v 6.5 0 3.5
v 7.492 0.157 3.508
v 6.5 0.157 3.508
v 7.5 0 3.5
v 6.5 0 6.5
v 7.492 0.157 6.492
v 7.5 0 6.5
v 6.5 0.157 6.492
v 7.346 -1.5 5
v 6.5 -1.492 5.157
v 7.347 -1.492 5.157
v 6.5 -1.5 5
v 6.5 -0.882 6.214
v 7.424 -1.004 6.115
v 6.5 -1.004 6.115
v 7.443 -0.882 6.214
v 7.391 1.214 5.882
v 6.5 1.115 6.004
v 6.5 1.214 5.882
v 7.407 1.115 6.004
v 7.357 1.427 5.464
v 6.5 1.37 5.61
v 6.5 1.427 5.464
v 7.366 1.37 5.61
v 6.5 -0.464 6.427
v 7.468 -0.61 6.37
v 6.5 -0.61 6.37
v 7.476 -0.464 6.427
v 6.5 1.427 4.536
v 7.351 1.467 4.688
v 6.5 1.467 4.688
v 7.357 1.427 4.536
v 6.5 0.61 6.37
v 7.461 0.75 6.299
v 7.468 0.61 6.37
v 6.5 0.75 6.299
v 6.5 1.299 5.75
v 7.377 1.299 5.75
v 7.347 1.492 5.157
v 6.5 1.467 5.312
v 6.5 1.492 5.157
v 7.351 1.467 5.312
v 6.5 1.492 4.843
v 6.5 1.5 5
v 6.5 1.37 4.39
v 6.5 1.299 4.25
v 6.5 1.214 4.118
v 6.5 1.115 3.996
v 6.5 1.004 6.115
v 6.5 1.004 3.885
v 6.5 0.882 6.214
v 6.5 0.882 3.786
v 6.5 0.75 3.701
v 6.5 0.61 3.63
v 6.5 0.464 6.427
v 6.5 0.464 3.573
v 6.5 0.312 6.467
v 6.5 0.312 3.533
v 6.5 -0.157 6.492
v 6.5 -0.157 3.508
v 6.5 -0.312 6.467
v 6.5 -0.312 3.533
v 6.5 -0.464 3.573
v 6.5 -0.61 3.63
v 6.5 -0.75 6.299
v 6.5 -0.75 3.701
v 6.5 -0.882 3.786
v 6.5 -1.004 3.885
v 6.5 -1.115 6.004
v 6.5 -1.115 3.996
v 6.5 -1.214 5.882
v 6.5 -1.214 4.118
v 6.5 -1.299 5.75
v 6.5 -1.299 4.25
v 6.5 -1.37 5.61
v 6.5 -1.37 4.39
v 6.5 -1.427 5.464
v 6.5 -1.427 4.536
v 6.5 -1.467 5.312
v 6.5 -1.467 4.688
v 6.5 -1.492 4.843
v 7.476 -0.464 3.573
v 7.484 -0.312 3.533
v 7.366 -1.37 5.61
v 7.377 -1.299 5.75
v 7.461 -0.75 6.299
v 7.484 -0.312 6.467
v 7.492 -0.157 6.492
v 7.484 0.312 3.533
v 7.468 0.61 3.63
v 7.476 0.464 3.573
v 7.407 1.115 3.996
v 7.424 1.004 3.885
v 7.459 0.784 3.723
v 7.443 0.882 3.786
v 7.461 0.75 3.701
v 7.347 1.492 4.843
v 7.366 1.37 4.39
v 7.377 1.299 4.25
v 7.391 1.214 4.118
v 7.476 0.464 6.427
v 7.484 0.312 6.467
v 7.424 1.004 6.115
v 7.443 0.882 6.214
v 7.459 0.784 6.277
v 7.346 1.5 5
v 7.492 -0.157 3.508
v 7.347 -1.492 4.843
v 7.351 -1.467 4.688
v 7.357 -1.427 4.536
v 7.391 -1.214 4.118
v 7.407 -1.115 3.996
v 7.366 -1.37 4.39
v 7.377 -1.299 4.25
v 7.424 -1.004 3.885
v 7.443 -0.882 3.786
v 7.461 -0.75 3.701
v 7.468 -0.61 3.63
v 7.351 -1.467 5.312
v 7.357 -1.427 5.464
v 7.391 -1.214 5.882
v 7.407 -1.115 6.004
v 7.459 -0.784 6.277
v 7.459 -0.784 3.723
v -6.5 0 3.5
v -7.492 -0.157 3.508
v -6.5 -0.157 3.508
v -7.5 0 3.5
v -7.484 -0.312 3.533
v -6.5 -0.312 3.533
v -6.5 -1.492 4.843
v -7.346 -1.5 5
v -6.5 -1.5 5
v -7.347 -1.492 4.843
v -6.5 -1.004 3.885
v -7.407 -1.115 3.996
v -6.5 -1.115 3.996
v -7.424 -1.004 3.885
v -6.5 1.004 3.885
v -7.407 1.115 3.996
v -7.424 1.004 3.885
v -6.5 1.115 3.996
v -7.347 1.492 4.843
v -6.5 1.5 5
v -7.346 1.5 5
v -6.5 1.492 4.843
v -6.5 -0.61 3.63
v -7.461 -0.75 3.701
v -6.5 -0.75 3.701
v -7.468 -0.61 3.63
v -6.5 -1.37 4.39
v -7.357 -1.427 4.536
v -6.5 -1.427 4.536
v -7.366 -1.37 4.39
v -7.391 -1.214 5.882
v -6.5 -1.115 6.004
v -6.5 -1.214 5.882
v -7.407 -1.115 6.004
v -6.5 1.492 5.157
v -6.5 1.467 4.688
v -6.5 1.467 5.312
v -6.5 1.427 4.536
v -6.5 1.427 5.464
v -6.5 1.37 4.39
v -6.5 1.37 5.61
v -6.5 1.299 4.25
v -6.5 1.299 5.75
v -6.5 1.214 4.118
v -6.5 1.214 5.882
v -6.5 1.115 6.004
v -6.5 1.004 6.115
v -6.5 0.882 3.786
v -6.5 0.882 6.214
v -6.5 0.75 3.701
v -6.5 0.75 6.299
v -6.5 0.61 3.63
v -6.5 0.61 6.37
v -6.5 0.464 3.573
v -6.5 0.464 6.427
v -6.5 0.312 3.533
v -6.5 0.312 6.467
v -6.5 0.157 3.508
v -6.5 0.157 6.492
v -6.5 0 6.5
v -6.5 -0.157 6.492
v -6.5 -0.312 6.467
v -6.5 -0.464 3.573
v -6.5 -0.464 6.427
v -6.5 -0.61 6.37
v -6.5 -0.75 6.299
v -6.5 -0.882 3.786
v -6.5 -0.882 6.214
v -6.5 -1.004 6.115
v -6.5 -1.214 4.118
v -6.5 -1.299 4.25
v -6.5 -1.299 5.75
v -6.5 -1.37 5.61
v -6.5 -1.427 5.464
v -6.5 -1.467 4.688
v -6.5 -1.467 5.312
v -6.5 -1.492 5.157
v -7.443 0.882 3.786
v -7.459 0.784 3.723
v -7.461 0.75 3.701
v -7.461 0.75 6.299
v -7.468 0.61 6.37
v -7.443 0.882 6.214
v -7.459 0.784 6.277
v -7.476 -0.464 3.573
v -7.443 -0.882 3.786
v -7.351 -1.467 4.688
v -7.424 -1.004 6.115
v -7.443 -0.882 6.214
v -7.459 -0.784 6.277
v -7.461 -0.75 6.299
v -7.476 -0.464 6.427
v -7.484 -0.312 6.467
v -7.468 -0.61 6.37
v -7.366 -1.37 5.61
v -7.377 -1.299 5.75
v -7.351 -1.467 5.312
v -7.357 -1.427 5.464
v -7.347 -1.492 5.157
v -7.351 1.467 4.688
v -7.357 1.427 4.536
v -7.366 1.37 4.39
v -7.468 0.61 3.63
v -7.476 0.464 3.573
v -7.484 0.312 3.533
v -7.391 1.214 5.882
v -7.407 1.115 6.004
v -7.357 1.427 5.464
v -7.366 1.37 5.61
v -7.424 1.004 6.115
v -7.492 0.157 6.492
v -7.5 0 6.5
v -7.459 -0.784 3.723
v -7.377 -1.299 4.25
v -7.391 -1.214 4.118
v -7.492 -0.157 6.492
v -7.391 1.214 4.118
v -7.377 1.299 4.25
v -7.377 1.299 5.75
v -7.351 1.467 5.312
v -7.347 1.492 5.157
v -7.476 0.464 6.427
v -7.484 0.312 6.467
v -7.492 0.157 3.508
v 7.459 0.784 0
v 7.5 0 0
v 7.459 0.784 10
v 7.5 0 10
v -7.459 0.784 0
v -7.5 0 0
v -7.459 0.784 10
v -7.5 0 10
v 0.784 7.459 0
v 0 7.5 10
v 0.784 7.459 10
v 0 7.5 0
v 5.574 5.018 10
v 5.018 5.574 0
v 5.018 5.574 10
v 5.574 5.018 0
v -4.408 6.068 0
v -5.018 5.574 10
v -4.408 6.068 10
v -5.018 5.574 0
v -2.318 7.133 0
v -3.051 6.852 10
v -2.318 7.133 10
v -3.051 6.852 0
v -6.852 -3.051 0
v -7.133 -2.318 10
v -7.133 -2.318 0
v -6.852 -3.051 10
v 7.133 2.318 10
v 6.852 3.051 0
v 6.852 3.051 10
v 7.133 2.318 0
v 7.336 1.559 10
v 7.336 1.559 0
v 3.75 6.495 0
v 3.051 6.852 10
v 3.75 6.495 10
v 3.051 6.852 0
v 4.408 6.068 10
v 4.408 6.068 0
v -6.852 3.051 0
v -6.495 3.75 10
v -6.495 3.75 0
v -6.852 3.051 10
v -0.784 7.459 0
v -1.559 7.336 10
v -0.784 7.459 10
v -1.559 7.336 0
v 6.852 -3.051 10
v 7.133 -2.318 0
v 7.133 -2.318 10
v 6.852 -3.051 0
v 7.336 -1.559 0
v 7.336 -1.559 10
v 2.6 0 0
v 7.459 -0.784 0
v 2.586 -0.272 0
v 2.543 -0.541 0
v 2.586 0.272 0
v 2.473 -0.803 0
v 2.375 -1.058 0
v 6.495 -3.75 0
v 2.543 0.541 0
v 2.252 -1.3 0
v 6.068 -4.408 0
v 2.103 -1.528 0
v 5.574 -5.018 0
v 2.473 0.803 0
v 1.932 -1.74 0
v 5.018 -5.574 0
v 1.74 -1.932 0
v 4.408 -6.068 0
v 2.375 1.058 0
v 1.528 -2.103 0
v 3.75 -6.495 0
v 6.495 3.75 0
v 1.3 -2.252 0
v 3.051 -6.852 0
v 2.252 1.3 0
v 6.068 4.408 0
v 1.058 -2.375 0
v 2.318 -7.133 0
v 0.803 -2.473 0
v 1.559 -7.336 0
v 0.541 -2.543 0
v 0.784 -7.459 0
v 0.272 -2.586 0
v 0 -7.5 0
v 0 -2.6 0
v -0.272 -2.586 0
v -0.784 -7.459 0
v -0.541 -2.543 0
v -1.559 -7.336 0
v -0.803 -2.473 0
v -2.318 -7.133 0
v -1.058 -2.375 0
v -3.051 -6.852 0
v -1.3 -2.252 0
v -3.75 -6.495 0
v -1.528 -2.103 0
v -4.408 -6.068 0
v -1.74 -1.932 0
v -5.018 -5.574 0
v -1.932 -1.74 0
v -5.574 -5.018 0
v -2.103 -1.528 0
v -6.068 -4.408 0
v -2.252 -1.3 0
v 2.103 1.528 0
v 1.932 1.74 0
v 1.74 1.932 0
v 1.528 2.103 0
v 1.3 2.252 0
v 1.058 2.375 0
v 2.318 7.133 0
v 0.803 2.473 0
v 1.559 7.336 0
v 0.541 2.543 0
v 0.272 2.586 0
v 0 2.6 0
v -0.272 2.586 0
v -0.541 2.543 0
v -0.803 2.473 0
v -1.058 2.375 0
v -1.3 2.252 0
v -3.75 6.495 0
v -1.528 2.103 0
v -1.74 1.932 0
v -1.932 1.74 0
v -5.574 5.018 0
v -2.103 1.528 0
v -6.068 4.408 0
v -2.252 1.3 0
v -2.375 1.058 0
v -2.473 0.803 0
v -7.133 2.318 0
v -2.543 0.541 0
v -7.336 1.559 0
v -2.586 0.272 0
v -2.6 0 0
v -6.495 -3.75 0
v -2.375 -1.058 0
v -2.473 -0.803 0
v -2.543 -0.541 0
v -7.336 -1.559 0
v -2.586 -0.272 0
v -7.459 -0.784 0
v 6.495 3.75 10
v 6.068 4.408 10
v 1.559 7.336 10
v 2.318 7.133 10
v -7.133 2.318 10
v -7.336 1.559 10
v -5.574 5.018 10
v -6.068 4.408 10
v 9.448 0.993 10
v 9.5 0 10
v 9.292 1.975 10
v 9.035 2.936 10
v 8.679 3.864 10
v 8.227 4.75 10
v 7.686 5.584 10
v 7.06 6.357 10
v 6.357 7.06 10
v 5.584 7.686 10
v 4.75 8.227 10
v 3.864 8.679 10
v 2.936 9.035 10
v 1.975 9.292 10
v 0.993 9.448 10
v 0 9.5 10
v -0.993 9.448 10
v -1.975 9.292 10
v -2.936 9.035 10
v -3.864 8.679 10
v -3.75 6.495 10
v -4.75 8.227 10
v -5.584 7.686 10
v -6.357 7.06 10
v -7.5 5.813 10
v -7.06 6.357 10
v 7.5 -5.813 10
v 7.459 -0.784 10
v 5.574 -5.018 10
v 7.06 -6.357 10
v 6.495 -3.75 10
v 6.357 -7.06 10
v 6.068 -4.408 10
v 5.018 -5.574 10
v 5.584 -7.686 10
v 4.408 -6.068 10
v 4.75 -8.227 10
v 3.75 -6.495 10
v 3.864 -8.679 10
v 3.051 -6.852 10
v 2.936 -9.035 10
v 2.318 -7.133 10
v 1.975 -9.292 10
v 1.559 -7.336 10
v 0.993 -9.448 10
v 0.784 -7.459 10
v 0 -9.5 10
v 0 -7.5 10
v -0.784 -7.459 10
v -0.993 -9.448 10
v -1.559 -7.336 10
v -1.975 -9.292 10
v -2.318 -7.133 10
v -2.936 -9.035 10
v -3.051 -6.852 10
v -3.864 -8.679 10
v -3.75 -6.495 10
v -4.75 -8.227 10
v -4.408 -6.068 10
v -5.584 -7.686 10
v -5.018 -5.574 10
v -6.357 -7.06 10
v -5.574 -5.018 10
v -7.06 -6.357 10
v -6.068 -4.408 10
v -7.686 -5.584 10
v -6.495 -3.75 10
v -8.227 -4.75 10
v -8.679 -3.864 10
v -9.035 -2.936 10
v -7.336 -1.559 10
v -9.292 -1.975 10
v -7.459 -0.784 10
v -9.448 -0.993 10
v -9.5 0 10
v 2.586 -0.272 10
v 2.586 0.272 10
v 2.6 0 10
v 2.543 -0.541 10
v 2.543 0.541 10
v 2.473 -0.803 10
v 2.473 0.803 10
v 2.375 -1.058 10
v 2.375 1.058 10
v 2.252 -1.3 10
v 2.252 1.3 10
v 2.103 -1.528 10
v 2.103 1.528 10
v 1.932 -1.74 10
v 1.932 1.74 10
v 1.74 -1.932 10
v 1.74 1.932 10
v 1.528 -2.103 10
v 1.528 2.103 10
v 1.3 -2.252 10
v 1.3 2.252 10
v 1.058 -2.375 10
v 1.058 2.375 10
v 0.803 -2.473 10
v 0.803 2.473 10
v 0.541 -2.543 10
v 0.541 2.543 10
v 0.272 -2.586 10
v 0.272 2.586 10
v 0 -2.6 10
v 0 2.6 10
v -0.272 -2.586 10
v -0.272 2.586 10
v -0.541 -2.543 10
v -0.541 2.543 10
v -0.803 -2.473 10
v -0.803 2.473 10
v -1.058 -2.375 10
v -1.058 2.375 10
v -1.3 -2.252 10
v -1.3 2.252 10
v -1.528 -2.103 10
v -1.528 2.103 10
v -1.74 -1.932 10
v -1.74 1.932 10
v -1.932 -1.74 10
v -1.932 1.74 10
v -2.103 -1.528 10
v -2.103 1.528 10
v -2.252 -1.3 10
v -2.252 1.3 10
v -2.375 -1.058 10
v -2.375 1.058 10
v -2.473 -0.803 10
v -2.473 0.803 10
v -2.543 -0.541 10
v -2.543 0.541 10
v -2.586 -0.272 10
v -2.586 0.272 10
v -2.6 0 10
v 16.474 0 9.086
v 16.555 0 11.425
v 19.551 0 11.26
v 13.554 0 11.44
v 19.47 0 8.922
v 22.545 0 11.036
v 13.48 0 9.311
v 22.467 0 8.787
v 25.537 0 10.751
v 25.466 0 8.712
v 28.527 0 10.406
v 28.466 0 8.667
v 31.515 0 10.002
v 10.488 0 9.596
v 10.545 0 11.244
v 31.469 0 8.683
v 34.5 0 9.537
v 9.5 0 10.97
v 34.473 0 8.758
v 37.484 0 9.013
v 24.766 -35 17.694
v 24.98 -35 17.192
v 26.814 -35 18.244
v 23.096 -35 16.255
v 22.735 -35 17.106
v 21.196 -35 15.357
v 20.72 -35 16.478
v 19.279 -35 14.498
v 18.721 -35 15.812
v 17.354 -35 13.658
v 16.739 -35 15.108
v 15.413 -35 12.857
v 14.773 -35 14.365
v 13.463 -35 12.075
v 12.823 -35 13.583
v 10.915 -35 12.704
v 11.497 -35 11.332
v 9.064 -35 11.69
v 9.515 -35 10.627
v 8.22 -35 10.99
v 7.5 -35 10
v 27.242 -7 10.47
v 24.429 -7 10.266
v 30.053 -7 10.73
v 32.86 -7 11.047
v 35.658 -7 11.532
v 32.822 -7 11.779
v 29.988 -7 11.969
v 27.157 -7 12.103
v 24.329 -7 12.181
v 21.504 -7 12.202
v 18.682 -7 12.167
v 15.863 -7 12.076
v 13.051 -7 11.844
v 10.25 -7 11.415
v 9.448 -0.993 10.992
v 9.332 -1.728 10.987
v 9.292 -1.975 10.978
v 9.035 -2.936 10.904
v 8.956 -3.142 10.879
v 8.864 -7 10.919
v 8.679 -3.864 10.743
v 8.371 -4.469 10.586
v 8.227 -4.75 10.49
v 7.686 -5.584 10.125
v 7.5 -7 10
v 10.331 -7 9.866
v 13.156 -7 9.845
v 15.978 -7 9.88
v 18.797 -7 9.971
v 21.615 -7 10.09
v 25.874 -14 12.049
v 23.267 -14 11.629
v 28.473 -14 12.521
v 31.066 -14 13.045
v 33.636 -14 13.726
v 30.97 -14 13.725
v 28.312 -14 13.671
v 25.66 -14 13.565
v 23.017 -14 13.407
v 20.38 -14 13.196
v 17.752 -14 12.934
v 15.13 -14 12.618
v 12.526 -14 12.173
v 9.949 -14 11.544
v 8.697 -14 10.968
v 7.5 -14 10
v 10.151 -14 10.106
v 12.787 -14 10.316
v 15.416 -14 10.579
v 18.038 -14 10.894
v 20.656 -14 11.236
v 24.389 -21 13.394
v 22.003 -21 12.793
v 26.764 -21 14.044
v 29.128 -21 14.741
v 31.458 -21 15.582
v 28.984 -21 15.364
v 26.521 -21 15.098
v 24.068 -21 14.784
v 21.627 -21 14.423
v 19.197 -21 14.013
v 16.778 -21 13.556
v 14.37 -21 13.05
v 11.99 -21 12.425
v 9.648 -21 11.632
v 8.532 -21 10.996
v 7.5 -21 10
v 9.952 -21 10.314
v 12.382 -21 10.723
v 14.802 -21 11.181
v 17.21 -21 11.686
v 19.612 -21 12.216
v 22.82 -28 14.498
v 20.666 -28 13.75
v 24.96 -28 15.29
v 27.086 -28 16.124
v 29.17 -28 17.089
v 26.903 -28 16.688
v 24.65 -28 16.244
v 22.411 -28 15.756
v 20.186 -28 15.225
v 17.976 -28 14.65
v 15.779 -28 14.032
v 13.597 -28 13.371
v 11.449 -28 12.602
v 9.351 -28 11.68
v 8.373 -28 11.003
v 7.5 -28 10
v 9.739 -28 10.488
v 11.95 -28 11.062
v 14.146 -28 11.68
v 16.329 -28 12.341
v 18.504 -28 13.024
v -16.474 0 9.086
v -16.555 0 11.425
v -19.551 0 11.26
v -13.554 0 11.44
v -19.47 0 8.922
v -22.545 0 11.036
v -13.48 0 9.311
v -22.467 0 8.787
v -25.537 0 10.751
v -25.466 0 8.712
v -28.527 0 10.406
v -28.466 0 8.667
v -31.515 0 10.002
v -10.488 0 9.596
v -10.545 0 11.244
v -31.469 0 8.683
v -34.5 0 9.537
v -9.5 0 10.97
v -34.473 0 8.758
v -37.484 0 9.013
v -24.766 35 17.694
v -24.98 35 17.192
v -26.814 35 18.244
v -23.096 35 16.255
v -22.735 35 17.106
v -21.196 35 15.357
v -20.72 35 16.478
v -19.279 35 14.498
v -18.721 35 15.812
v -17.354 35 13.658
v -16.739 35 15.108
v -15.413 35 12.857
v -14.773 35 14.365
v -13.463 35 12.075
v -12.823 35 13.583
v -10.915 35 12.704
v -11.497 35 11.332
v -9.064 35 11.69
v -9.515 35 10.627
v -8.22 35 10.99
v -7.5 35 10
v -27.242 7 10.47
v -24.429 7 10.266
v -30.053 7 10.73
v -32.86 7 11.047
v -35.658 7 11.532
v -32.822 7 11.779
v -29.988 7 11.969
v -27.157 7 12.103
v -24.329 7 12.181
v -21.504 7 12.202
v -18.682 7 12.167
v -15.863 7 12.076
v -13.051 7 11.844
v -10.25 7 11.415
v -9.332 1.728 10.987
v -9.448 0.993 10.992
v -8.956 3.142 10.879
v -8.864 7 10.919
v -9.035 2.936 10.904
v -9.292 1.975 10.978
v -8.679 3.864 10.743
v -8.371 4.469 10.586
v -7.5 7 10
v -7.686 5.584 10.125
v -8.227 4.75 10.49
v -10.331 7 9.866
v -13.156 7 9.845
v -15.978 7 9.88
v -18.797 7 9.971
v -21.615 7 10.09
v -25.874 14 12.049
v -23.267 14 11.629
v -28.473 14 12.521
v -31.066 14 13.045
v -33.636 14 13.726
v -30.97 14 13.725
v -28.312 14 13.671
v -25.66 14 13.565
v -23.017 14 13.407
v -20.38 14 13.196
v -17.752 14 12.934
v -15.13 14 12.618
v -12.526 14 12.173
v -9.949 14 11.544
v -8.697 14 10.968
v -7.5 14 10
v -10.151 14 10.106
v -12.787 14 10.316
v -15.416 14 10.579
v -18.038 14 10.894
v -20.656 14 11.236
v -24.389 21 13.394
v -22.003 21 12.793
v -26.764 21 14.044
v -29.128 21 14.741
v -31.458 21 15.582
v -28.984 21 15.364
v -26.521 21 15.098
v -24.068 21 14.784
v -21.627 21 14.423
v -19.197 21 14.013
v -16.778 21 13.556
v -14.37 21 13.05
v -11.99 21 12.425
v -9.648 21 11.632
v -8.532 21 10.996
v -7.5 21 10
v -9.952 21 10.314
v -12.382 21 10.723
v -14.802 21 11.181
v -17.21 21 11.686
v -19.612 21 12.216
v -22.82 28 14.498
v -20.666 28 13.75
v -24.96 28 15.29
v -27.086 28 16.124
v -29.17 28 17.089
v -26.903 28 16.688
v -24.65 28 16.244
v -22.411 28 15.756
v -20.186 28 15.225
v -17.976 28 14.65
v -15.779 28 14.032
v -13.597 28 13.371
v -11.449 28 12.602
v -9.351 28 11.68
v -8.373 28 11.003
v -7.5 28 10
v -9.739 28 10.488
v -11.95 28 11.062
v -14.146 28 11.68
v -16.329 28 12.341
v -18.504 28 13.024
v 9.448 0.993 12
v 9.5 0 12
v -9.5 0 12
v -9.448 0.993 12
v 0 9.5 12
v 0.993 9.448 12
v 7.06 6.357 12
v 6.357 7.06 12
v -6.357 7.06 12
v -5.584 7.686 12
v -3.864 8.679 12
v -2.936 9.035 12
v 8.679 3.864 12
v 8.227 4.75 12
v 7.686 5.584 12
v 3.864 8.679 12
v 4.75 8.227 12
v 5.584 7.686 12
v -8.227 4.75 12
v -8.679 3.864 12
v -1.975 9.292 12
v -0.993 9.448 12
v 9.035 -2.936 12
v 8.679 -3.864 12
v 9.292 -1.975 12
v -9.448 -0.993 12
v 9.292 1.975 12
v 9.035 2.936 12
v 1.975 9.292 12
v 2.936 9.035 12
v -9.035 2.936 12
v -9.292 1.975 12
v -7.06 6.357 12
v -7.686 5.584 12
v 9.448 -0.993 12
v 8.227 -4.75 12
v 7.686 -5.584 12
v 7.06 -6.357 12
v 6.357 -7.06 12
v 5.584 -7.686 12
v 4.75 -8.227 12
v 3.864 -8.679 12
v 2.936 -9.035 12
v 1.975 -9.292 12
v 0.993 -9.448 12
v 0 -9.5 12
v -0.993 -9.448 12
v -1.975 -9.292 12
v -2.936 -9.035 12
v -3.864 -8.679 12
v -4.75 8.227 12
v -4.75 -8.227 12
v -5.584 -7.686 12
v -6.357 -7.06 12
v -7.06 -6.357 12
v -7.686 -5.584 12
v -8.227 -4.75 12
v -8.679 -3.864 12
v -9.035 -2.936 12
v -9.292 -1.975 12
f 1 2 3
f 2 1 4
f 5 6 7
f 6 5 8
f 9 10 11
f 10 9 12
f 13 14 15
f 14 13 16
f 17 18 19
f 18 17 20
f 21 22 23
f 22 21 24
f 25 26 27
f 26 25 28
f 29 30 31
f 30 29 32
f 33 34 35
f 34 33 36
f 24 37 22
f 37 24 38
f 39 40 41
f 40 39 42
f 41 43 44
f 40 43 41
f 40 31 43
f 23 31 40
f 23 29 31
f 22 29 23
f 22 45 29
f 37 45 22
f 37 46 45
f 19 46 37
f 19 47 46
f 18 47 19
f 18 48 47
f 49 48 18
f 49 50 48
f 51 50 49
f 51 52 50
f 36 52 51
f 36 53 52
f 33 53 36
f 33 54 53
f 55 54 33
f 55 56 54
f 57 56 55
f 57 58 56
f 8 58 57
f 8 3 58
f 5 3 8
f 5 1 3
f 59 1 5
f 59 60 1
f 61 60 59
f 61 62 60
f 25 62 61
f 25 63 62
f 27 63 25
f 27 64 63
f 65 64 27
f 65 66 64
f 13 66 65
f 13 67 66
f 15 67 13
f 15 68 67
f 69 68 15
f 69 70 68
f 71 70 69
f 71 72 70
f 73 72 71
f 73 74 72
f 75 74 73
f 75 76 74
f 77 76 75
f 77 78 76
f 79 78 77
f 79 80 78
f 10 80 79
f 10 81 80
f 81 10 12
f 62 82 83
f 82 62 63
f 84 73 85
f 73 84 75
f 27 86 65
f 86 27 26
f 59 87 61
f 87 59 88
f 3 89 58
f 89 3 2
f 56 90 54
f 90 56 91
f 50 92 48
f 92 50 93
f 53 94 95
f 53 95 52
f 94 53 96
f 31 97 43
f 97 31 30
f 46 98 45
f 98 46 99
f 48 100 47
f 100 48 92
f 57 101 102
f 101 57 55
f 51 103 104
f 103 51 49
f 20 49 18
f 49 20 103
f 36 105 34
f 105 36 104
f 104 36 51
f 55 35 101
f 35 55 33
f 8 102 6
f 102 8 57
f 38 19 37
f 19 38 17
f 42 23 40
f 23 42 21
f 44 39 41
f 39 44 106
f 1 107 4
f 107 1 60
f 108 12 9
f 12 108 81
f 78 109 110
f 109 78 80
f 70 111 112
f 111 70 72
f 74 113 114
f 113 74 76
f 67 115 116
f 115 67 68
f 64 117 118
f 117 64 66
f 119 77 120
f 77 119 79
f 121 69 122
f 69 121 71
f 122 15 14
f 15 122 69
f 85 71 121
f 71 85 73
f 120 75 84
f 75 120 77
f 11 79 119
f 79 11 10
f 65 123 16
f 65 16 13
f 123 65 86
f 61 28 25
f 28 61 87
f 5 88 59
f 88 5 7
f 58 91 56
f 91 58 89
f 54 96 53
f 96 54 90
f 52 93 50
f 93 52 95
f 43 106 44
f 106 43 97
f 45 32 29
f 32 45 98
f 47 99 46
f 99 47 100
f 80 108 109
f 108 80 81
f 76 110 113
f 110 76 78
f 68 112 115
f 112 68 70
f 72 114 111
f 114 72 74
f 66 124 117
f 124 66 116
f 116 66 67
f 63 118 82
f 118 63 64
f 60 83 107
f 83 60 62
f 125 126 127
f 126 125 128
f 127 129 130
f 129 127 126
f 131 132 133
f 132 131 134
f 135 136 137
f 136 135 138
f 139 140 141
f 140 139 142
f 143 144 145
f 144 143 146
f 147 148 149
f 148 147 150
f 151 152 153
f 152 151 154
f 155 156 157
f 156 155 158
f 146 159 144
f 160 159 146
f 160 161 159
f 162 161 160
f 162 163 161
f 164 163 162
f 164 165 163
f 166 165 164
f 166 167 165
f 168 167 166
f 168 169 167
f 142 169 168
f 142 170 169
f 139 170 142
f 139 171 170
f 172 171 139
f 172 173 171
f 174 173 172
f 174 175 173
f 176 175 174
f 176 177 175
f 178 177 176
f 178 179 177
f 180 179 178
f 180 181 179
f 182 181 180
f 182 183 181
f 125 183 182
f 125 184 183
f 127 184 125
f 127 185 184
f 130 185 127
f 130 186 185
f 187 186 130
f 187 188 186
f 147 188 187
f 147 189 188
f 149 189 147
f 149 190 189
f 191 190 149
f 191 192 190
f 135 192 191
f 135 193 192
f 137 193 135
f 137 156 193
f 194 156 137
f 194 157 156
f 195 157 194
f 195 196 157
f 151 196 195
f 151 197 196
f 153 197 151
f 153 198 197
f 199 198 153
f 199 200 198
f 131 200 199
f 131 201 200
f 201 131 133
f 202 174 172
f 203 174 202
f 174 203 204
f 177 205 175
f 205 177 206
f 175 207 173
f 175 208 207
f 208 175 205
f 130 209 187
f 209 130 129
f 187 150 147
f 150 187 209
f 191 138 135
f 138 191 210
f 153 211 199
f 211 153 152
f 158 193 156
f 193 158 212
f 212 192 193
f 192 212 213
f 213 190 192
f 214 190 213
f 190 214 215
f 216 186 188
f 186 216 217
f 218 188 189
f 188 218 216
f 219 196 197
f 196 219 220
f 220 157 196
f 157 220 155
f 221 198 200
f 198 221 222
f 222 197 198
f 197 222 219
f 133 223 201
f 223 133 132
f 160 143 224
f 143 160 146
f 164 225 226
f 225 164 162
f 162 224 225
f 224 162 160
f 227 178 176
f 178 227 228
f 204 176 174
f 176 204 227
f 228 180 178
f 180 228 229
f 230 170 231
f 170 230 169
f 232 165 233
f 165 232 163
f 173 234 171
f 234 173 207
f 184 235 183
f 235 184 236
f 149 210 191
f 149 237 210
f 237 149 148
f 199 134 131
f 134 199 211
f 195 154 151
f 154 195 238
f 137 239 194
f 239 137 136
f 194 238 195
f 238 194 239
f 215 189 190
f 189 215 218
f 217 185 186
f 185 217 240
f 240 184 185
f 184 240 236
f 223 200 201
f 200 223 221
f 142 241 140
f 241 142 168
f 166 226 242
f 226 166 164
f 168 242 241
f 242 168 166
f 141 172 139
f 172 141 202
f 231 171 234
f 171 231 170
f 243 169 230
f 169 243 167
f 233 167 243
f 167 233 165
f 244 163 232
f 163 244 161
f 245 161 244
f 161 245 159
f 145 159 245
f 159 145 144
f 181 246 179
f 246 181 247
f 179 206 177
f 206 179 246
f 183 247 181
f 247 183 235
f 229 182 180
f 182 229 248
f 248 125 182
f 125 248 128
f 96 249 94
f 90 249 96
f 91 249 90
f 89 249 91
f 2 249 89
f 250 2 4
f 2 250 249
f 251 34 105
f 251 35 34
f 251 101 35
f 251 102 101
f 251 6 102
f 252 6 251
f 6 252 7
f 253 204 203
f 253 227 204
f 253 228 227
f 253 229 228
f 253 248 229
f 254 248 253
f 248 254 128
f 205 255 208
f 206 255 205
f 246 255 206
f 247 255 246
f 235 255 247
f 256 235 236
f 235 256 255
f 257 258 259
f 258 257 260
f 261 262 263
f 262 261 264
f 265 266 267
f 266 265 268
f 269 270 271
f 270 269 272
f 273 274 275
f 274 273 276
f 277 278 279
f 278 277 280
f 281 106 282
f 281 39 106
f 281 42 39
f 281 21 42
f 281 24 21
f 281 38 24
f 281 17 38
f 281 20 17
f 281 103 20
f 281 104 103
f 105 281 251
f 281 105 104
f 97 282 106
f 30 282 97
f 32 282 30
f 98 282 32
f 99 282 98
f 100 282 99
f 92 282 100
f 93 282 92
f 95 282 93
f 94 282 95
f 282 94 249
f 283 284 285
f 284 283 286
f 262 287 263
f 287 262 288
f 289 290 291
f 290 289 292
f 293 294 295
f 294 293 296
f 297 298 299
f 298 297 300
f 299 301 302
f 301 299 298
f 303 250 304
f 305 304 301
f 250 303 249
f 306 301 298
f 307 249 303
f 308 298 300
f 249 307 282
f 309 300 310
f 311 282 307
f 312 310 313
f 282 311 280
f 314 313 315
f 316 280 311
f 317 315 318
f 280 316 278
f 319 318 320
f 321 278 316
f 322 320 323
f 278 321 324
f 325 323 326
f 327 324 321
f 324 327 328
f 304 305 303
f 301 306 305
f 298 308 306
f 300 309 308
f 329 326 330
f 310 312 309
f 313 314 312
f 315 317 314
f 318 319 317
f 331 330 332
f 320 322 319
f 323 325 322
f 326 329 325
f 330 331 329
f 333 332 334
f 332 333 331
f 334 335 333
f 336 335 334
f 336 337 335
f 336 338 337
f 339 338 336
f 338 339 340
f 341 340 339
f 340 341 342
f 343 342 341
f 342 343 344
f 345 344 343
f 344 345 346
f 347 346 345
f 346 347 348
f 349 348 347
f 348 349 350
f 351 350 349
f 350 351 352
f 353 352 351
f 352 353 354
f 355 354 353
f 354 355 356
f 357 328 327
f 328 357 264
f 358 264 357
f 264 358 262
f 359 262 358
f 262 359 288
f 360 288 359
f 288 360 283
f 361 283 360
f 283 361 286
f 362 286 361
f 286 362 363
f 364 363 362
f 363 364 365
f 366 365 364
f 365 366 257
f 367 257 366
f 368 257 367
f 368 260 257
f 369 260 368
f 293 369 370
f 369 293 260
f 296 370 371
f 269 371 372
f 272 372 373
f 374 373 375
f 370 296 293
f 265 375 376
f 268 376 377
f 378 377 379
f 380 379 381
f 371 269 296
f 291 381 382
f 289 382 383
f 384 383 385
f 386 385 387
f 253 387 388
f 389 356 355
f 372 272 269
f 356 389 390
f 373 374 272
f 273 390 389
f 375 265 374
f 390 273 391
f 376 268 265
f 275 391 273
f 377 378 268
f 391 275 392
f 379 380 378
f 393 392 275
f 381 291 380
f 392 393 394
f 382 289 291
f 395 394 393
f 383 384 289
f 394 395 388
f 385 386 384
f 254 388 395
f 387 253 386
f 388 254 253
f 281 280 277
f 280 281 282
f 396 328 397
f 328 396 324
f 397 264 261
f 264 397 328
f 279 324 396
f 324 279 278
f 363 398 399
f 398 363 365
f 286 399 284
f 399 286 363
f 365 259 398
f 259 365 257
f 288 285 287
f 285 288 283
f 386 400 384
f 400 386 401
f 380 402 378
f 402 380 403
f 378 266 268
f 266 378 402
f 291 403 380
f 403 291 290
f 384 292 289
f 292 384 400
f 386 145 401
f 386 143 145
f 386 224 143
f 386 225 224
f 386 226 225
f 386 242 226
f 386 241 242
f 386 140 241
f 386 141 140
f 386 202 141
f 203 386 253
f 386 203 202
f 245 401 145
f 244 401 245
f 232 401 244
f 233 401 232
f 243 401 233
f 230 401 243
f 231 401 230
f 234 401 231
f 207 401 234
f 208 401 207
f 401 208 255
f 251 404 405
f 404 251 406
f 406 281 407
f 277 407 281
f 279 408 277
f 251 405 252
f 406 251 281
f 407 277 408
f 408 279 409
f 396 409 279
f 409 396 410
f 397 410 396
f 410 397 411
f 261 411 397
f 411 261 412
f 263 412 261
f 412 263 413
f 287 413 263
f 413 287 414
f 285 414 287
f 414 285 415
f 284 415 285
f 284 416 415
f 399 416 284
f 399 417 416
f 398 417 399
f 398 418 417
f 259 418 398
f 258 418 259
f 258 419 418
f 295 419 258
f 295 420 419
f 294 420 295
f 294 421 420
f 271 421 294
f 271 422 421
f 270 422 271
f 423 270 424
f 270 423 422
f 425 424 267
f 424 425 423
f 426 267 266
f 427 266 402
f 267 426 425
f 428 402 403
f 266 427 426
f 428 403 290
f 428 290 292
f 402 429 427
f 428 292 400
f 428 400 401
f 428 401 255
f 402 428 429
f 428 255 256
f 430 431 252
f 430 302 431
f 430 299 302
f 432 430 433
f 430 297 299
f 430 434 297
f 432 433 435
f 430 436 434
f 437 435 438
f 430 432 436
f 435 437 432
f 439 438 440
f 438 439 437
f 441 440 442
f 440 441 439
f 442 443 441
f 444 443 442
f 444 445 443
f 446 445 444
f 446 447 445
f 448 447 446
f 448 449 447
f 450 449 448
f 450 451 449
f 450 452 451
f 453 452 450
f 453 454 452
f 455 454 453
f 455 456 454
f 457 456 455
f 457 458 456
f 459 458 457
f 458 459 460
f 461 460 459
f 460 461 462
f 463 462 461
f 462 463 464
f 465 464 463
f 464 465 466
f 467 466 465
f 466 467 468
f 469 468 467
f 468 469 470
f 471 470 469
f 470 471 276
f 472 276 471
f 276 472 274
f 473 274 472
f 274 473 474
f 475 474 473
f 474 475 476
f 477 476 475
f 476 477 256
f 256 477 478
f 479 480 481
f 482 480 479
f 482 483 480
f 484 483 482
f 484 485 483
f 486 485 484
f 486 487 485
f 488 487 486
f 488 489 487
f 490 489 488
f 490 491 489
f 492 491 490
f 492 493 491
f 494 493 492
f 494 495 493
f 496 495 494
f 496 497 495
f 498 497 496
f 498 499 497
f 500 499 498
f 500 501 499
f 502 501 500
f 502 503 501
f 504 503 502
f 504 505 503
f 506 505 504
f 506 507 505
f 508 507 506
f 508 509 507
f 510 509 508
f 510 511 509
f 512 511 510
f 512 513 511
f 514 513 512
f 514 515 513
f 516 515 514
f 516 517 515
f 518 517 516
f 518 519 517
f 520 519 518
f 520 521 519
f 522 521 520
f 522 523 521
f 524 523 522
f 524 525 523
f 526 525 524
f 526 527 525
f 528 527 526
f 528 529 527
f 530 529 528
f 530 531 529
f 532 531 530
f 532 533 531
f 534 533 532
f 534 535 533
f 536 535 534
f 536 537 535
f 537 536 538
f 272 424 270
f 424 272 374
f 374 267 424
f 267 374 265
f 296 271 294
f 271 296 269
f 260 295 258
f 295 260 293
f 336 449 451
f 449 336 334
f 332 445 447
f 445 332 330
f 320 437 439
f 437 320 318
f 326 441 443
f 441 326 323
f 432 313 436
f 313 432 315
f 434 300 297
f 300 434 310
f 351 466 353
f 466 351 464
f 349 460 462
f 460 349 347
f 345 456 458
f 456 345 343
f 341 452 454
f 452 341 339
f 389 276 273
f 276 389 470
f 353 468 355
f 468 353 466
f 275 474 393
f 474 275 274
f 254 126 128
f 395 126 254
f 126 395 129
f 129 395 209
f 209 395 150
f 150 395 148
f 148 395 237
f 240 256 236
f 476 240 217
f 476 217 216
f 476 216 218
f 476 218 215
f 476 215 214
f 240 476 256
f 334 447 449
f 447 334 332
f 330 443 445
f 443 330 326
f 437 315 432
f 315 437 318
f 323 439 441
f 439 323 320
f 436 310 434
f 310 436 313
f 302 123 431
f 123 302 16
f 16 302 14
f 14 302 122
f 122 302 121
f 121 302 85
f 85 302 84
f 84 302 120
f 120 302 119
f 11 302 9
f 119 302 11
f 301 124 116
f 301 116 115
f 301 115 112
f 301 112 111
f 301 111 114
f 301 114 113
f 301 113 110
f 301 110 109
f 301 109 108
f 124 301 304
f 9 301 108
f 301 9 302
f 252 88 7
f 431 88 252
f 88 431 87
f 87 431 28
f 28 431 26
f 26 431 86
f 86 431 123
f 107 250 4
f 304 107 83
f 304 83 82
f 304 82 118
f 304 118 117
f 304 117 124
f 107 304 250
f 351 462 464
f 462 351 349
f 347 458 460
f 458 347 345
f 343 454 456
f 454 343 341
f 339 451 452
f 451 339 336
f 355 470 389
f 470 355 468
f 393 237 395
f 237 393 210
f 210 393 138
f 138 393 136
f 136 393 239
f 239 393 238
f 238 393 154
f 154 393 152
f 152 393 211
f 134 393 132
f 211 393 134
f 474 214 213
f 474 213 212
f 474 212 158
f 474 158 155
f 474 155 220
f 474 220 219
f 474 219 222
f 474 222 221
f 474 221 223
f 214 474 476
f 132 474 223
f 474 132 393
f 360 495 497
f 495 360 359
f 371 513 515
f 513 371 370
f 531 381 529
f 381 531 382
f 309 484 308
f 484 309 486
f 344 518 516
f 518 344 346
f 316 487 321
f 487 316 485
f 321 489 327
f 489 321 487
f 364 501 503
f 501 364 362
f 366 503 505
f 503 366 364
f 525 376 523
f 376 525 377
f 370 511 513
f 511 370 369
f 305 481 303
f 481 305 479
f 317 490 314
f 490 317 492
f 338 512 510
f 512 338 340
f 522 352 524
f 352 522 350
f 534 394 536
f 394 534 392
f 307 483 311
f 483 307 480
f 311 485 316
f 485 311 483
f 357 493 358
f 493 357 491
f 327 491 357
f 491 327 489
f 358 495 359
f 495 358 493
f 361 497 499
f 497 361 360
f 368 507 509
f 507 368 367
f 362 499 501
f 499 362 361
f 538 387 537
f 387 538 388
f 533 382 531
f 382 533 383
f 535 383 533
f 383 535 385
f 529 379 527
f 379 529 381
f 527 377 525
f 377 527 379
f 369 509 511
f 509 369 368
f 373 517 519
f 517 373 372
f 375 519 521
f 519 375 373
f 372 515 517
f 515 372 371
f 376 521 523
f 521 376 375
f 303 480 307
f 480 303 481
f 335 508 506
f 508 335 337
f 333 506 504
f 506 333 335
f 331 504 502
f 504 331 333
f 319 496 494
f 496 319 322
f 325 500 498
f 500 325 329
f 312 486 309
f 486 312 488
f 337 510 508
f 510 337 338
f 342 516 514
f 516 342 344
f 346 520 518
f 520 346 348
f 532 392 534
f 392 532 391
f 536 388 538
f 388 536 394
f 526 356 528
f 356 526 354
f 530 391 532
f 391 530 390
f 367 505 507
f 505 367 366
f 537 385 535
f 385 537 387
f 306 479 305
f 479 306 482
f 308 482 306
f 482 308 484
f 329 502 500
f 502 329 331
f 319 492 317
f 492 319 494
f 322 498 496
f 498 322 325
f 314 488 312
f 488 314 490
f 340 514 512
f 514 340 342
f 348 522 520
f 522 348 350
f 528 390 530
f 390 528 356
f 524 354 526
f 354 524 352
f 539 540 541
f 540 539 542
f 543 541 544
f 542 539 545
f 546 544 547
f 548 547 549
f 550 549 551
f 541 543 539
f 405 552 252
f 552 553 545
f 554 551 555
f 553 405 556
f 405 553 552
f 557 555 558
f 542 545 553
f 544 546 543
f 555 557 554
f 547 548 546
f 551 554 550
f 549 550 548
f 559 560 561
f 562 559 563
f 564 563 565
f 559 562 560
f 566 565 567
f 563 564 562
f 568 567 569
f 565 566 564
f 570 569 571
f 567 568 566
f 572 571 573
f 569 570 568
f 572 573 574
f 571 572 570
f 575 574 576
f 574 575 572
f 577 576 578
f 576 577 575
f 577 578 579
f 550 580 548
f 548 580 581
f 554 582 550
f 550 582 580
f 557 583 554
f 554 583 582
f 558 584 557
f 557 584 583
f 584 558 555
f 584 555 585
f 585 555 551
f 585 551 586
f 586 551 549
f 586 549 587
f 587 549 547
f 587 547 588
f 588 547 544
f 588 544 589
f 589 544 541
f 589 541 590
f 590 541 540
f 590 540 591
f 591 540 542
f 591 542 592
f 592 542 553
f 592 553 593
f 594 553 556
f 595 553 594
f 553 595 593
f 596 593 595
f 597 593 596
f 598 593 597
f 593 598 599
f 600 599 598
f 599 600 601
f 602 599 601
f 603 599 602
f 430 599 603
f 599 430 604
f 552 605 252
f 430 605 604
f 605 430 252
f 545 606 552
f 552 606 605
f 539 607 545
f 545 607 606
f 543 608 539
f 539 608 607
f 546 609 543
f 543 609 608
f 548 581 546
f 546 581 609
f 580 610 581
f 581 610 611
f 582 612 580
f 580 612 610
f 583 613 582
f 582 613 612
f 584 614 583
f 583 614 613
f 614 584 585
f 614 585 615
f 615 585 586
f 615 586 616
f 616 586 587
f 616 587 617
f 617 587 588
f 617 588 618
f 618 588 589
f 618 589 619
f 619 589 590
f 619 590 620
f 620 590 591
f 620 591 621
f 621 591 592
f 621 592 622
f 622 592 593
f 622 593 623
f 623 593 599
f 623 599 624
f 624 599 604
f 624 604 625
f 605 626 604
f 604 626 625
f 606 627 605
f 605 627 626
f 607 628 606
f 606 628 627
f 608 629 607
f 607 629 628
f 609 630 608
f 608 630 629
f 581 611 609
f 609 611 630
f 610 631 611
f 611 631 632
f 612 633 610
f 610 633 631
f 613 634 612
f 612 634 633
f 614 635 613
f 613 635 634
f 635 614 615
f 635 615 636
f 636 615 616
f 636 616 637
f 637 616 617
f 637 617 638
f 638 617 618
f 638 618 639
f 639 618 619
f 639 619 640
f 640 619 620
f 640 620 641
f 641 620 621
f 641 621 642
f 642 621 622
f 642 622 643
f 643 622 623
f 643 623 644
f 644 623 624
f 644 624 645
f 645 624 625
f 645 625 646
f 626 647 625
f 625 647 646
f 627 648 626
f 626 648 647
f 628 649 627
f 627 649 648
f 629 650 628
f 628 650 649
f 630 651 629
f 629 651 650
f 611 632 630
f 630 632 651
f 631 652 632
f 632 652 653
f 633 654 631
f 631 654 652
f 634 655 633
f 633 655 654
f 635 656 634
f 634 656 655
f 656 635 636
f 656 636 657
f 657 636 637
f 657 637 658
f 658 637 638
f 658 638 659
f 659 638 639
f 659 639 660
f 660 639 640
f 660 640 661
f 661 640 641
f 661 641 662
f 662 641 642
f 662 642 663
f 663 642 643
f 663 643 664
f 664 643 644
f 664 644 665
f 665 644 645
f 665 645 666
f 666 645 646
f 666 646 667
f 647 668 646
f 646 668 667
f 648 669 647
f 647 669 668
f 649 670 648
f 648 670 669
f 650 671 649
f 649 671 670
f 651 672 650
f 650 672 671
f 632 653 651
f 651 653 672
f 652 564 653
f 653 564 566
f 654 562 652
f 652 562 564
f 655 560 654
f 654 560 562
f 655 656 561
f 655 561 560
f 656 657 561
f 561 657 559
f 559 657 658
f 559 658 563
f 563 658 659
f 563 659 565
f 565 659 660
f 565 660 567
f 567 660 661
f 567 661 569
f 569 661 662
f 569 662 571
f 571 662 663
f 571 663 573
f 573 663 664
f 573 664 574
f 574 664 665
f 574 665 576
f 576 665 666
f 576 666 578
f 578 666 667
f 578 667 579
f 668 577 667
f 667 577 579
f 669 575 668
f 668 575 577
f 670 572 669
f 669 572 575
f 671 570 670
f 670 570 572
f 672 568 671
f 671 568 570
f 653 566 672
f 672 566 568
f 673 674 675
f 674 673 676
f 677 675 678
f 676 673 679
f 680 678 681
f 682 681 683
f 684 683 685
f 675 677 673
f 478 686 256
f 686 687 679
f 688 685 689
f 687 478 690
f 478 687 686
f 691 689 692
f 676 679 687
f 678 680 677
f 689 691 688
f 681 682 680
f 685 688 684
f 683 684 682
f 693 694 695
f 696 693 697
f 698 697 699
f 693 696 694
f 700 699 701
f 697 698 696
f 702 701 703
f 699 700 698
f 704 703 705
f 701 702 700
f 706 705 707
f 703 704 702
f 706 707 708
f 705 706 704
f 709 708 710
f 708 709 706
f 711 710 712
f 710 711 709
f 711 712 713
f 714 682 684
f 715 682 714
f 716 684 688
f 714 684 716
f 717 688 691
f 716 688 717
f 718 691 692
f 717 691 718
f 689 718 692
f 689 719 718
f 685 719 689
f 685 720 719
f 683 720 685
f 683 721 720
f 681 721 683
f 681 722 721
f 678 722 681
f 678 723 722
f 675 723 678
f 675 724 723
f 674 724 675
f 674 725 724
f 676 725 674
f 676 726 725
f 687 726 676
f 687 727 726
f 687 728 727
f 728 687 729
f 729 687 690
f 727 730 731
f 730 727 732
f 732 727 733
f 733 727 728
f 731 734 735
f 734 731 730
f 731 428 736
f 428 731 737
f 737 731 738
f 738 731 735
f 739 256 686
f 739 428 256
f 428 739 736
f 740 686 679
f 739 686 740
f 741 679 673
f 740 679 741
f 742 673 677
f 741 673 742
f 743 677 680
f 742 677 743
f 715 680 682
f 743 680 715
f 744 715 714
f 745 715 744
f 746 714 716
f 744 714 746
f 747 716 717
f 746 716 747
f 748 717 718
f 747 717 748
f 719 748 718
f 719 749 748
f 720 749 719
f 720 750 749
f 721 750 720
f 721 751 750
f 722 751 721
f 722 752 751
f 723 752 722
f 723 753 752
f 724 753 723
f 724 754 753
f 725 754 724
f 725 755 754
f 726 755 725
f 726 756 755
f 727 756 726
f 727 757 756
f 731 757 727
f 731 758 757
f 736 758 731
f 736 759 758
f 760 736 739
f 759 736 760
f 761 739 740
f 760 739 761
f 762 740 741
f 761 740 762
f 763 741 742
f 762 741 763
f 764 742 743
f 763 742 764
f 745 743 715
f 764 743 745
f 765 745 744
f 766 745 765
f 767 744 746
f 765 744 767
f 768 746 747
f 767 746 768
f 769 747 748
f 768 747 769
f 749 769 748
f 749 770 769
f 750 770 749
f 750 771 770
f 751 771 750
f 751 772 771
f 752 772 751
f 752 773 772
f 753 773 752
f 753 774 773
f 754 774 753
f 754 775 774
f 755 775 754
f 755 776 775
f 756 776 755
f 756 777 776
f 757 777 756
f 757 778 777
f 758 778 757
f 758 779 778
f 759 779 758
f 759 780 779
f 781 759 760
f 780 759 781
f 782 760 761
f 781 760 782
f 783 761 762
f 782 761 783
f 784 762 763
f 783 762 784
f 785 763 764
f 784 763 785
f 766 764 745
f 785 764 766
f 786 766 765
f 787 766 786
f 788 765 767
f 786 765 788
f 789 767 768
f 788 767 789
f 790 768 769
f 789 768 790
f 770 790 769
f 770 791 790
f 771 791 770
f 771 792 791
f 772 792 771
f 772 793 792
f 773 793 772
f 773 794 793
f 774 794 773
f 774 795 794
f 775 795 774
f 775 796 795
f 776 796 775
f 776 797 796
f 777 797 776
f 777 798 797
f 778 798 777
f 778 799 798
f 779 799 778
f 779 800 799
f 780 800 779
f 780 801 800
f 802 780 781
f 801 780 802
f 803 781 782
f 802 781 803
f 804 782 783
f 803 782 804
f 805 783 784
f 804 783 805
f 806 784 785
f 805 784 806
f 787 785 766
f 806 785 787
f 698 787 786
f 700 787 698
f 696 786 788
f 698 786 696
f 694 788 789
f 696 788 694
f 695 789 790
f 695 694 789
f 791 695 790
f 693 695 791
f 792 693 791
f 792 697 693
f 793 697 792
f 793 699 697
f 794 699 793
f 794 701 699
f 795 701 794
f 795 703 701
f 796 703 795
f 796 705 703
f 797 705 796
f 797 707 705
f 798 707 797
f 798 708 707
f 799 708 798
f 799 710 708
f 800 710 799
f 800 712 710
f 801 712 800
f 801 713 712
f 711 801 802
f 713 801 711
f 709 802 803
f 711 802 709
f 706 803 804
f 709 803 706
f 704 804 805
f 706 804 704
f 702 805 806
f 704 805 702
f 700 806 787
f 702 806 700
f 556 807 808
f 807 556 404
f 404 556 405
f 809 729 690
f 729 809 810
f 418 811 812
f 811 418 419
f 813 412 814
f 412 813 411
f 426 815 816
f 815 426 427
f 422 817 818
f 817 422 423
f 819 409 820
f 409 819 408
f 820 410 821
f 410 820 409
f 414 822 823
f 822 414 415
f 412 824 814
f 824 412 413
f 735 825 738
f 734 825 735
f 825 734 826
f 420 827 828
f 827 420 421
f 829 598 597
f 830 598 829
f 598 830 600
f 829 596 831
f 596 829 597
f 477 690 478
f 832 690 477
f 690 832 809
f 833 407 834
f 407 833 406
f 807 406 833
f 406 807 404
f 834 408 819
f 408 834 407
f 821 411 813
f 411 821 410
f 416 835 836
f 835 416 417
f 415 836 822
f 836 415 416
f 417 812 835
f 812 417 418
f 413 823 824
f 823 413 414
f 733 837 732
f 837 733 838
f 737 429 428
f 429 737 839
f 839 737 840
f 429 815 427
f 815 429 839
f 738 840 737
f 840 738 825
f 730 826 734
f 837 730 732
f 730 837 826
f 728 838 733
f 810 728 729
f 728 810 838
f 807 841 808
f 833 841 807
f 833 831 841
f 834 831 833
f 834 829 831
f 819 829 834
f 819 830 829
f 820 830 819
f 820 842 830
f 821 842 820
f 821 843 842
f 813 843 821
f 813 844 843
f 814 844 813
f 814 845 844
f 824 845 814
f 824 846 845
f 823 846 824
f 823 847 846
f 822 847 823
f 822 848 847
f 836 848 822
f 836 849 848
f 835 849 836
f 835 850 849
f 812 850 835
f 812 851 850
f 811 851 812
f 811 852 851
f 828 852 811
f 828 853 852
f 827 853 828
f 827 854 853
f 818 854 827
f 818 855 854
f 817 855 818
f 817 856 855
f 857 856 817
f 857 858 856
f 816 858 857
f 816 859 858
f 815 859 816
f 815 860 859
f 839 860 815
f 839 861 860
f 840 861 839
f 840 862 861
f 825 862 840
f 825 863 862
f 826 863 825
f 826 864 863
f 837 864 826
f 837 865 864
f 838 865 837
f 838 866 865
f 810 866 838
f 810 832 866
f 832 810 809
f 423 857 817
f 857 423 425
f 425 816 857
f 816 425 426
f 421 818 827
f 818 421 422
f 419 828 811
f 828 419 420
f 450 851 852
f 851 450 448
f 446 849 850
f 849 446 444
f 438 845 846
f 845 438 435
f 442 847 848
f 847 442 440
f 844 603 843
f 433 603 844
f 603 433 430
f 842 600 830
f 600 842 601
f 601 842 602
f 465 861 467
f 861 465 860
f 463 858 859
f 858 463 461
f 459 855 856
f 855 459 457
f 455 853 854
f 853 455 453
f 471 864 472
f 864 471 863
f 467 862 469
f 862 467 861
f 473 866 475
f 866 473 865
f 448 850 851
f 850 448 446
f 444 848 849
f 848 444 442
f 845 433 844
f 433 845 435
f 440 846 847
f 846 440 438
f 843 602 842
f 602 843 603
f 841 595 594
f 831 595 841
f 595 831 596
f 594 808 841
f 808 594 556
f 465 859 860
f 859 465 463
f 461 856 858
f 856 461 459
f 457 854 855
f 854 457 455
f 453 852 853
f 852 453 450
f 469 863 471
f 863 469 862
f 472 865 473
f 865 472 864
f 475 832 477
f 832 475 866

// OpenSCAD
/*
 * COMPLETE MOTOR + IMPELLER ASSEMBLY
 * For CFD fluid testing and visualization
 * 
 * This model includes:
 *   - Brushless motor (2204-2206 size)
 *   - Motor shaft (5mm)
 *   - Impeller hub
 *   - 3 impeller variants (bladeless, AI-blades, hybrid)
 *   - Mounting plate
 * 
 * Usage:
 *   - Render full assembly: F6
 *   - Export for CFD: Set EXPORT_MODE = "impeller_only"
 *   - Change design: Set IMPELLER_TYPE = "bladeless" | "bladed" | "hybrid"
 */

// ============================================================================
// CONFIGURATION PARAMETERS (AI-Optimizable)
// ============================================================================

// General Settings
$fn = 60;  // Resolution for CFD export (increase to 100 for final)

// Export Mode
EXPORT_MODE = "impeller_only";  // Options: "full_assembly", "impeller_only", "motor_only"

// Impeller Type
IMPELLER_TYPE = "bladed";  // Options: "bladeless", "bladed", "hybrid"

// Motor Specifications (2204-2206 brushless)
MOTOR_DIAMETER = 28;         // mm
MOTOR_HEIGHT = 25;           // mm
MOTOR_SHAFT_DIAMETER = 5;    // mm (standard)
MOTOR_SHAFT_LENGTH = 15;     // mm (extends above motor)
MOTOR_MOUNT_PATTERN = 16;    // mm (16x16 or 19x19 common)
MOTOR_SCREW_DIAMETER = 3;    // M3 screws

// Impeller Parameters - BLADELESS
BLADELESS_OUTER_DIAMETER = 90;    // mm
BLADELESS_AIR_GAP = 0.8;          // mm (optimize: 0.6-1.2)
BLADELESS_THROAT_RATIO = 0.72;    // (optimize: 0.65-0.80)
BLADELESS_EXPANSION_ANGLE = 18;   // degrees (optimize: 12-25)
BLADELESS_RING_THICKNESS = 3;     // mm (optimize: 2-4)
BLADELESS_HEIGHT = 24;            // mm

// Impeller Parameters - BLADED
BLADED_DIAMETER = 85;
BLADED_HUB_DIAMETER = 15;         // mm (optimize: 12-20)
BLADED_BLADE_COUNT = 2;
BLADED_ROOT_CHORD = 30;
BLADED_TIP_CHORD_RATIO = 0.7;    // (optimize: 0.6-0.8)
BLADED_BLADE_THICKNESS = 2;       // mm (optimize: 1.5-3)
BLADED_BLADE_TWIST = -25;
BLADED_ATTACK_ANGLE = -2;
BLADED_BLADE_HEIGHT = 12;         // mm (optimize: 10-15)

// Hub Parameters
HUB_DIAMETER = 15;
HUB_HEIGHT = 10;
HUB_SET_SCREW_DIAMETER = 3;  // M3 set screw

// Mounting Plate
PLATE_SIZE = 50;
PLATE_THICKNESS = 3;

// ============================================================================
// MOTOR MODEL
// ============================================================================

module brushless_motor_2204() {
    color("DarkSlateGray") {
        // Motor can (bell)
        difference() {
            cylinder(h=MOTOR_HEIGHT, d=MOTOR_DIAMETER);
            
            // Hollow inside (weight reduction visualization)
            translate([0, 0, -0.5])
                cylinder(h=MOTOR_HEIGHT - 5, d=MOTOR_DIAMETER - 4);
            
            // Mounting holes
            for(i = [0:3]) {
                rotate([0, 0, i * 90])
                    translate([MOTOR_MOUNT_PATTERN/2, 0, MOTOR_HEIGHT/2])
                        rotate([90, 0, 0])
                            cylinder(h=MOTOR_DIAMETER, d=MOTOR_SCREW_DIAMETER, center=true);
            }
        }
        
        // Motor base
        translate([0, 0, -3])
            cylinder(h=3, d=MOTOR_DIAMETER - 2);
    }
    
    // Motor shaft
    color("Silver")
        translate([0, 0, MOTOR_HEIGHT])
            cylinder(h=MOTOR_SHAFT_LENGTH, d=MOTOR_SHAFT_DIAMETER);
    
    // Shaft tip (for hub attachment)
    color("Silver")
        translate([0, 0, MOTOR_HEIGHT + MOTOR_SHAFT_LENGTH])
            cylinder(h=2, d=MOTOR_SHAFT_DIAMETER - 0.5);
}

// ============================================================================
// IMPELLER HUB
// ============================================================================

module impeller_hub() {
    color("Gray")
    difference() {
        // Hub body
        cylinder(h=HUB_HEIGHT, d=HUB_DIAMETER);
        
        // Shaft hole (5mm + 0.2mm clearance)
        translate([0, 0, -0.5])
            cylinder(h=HUB_HEIGHT + 1, d=MOTOR_SHAFT_DIAMETER + 0.2);
        
        // Set screw holes (2x for balance)
        for(i = [0:1]) {
            rotate([0, 0, i * 180])
                translate([HUB_DIAMETER/2 - 1, 0, HUB_HEIGHT/2])
                    rotate([0, 90, 0])
                        cylinder(h=5, d=HUB_SET_SCREW_DIAMETER);
        }
    }
}

// ============================================================================
// BLADELESS IMPELLER (Dyson-style)
// ============================================================================

module bladeless_impeller() {
    outer_r = BLADELESS_OUTER_DIAMETER / 2;
    throat_r = outer_r * BLADELESS_THROAT_RATIO;
    gap = BLADELESS_AIR_GAP;
    
    color("SkyBlue", 0.7)
    difference() {
        // Outer ring
        rotate_extrude()
            translate([outer_r - BLADELESS_RING_THICKNESS/2, BLADELESS_HEIGHT/2, 0])
                circle(d=BLADELESS_RING_THICKNESS + BLADELESS_HEIGHT);
        
        // Inner air gap (critical for Coanda effect)
        rotate_extrude()
            translate([outer_r - gap - BLADELESS_RING_THICKNESS/2, BLADELESS_HEIGHT/2, 0])
                circle(d=BLADELESS_RING_THICKNESS + BLADELESS_HEIGHT - 2*gap);
    }
    
    // Base plate (connects to hub)
    color("SkyBlue", 0.7)
    translate([0, 0, -2])
        difference() {
            cylinder(h=2, d=outer_r * 2);
            translate([0, 0, -0.5])
                cylinder(h=3, d=HUB_DIAMETER + 1);
        }
    
    // Air inlet (bell-shaped for smooth flow)
    color("SkyBlue", 0.7)
    translate([0, 0, -2]) {
        difference() {
            cylinder(h=15, d1=throat_r * 2, d2=outer_r * 1.8);
            translate([0, 0, -0.5])
                cylinder(h=16, d1=throat_r * 2 - 3, d2=outer_r * 1.8 - 3);
        }
    }
}

// ============================================================================
// AI-OPTIMIZED BLADED IMPELLER (NACA 2412 profile)
// ============================================================================

module naca_2412_blade(chord, height, twist_angle, attack_angle) {
    // Simplified NACA 2412 airfoil profile
    // Using parametric approximation for 3D printing
    
    color("LightSteelBlue", 0.8)
    linear_extrude(height=height, twist=twist_angle, scale=BLADED_TIP_CHORD_RATIO) {
        rotate([0, 0, attack_angle])
        polygon([
            // Upper surface (cambered)
            [0, 0],
            [chord * 0.05, chord * 0.03],
            [chord * 0.1, chord * 0.045],
            [chord * 0.2, chord * 0.055],
            [chord * 0.3, chord * 0.058],
            [chord * 0.4, chord * 0.056],
            [chord * 0.5, chord * 0.052],
            [chord * 0.6, chord * 0.046],
            [chord * 0.7, chord * 0.038],
            [chord * 0.8, chord * 0.028],
            [chord * 0.9, chord * 0.016],
            [chord * 1.0, chord * 0.002],
            // Lower surface (less cambered)
            [chord * 0.9, -chord * 0.010],
            [chord * 0.8, -chord * 0.016],
            [chord * 0.7, -chord * 0.020],
            [chord * 0.6, -chord * 0.022],
            [chord * 0.5, -chord * 0.023],
            [chord * 0.4, -chord * 0.022],
            [chord * 0.3, -chord * 0.020],
            [chord * 0.2, -chord * 0.016],
            [chord * 0.1, -chord * 0.010],
            [chord * 0.05, -chord * 0.005],
        ]);
    }
}

module bladed_impeller() {
    // Blades
    for(i = [0 : BLADED_BLADE_COUNT - 1]) {
        rotate([0, 0, i * (360 / BLADED_BLADE_COUNT)])
            translate([BLADED_HUB_DIAMETER/2, 0, 0])
                rotate([90, 0, 0])
                    naca_2412_blade(
                        BLADED_ROOT_CHORD, 
                        (BLADED_DIAMETER - BLADED_HUB_DIAMETER) / 2,
                        BLADED_BLADE_TWIST,
                        BLADED_ATTACK_ANGLE
                    );
    }
    
    // Hub disk (connects blades)
    color("LightSteelBlue", 0.8)
    cylinder(h=2, d=BLADED_HUB_DIAMETER + 4);
}

// ============================================================================
// HYBRID IMPELLER (Blades inside bladeless ring)
// ============================================================================

module hybrid_impeller() {
    // Outer bladeless ring
    bladeless_impeller();
    
    // Inner bladed impeller (scaled down to fit)
    scale([0.85, 0.85, 1])
        bladed_impeller();
}

// ============================================================================
// MOUNTING PLATE
// ============================================================================

module mounting_plate() {
    color("DimGray")
    difference() {
        // Base plate
        translate([-PLATE_SIZE/2, -PLATE_SIZE/2, 0])
            cube([PLATE_SIZE, PLATE_SIZE, PLATE_THICKNESS]);
        
        // Center hole for motor shaft
        translate([0, 0, -0.5])
            cylinder(h=PLATE_THICKNESS + 1, d=MOTOR_DIAMETER + 2);
        
        // Motor mounting holes
        for(i = [0:3]) {
            rotate([0, 0, i * 90])
                translate([MOTOR_MOUNT_PATTERN/2, 0, -0.5])
                    cylinder(h=PLATE_THICKNESS + 1, d=MOTOR_SCREW_DIAMETER);
        }
    }
}

// ============================================================================
// COMPLETE ASSEMBLY
// ============================================================================

module complete_assembly() {
    // Mounting plate (bottom)
    translate([0, 0, -PLATE_THICKNESS])
        mounting_plate();
    
    // Motor
    translate([0, 0, 0])
        brushless_motor_2204();
    
    // Hub (on shaft)
    translate([0, 0, MOTOR_HEIGHT + MOTOR_SHAFT_LENGTH - 2])
        impeller_hub();
    
    // Impeller (on hub)
    translate([0, 0, MOTOR_HEIGHT + MOTOR_SHAFT_LENGTH + HUB_HEIGHT]) {
        if (IMPELLER_TYPE == "bladeless") {
            bladeless_impeller();
        } else if (IMPELLER_TYPE == "bladed") {
            bladed_impeller();
        } else if (IMPELLER_TYPE == "hybrid") {
            hybrid_impeller();
        }
    }
}

// ============================================================================
// RENDER BASED ON EXPORT MODE
// ============================================================================

if (EXPORT_MODE == "full_assembly") {
    complete_assembly();
} 
else if (EXPORT_MODE == "impeller_only") {
    // For CFD testing - impeller + hub only
    impeller_hub();
    translate([0, 0, HUB_HEIGHT]) {
        if (IMPELLER_TYPE == "bladeless") {
            bladeless_impeller();
        } else if (IMPELLER_TYPE == "bladed") {
            bladed_impeller();
        } else if (IMPELLER_TYPE == "hybrid") {
            hybrid_impeller();
        }
    }
}
else if (EXPORT_MODE == "motor_only") {
    brushless_motor_2204();
}

// ============================================================================
// ANNOTATIONS FOR VISUALIZATION
// ============================================================================

// Uncomment to show dimensions
/*
color("Red", 0.3)
translate([BLADED_DIAMETER/2 + 10, 0, 20])
    text(str("Ø", BLADED_DIAMETER, "mm"), size=5, halign="left");

color("Green", 0.3)
translate([0, BLADED_DIAMETER/2 + 10, 20])
    text(str(BLADED_BLADE_COUNT, " blades"), size=5, halign="center");
*/

// ============================================================================
// EXPORT NOTES
// ============================================================================

/*
 * TO EXPORT FOR CFD TESTING:
 * 
 * 1. Set EXPORT_MODE = "impeller_only"
 * 2. Set IMPELLER_TYPE = "bladeless" (or "bladed" or "hybrid")
 * 3. Press F6 to render
 * 4. File → Export → Export as STL
 * 5. Use filename: impeller_bladeless_fn60.stl
 * 
 * FOR OPTIMIZATION:
 * - Modify parameters at top (marked with "optimize:")
 * - Re-render and export
 * - Upload to SimScale for CFD
 * - Compare results
 * 
 * RECOMMENDED CFD SETTINGS:
 * - Solver: k-omega SST
 * - RPM: 5000, 7000, 9000
 * - Mesh: 3-5M cells
 * - Boundary: Rotating zone on impeller
 */
